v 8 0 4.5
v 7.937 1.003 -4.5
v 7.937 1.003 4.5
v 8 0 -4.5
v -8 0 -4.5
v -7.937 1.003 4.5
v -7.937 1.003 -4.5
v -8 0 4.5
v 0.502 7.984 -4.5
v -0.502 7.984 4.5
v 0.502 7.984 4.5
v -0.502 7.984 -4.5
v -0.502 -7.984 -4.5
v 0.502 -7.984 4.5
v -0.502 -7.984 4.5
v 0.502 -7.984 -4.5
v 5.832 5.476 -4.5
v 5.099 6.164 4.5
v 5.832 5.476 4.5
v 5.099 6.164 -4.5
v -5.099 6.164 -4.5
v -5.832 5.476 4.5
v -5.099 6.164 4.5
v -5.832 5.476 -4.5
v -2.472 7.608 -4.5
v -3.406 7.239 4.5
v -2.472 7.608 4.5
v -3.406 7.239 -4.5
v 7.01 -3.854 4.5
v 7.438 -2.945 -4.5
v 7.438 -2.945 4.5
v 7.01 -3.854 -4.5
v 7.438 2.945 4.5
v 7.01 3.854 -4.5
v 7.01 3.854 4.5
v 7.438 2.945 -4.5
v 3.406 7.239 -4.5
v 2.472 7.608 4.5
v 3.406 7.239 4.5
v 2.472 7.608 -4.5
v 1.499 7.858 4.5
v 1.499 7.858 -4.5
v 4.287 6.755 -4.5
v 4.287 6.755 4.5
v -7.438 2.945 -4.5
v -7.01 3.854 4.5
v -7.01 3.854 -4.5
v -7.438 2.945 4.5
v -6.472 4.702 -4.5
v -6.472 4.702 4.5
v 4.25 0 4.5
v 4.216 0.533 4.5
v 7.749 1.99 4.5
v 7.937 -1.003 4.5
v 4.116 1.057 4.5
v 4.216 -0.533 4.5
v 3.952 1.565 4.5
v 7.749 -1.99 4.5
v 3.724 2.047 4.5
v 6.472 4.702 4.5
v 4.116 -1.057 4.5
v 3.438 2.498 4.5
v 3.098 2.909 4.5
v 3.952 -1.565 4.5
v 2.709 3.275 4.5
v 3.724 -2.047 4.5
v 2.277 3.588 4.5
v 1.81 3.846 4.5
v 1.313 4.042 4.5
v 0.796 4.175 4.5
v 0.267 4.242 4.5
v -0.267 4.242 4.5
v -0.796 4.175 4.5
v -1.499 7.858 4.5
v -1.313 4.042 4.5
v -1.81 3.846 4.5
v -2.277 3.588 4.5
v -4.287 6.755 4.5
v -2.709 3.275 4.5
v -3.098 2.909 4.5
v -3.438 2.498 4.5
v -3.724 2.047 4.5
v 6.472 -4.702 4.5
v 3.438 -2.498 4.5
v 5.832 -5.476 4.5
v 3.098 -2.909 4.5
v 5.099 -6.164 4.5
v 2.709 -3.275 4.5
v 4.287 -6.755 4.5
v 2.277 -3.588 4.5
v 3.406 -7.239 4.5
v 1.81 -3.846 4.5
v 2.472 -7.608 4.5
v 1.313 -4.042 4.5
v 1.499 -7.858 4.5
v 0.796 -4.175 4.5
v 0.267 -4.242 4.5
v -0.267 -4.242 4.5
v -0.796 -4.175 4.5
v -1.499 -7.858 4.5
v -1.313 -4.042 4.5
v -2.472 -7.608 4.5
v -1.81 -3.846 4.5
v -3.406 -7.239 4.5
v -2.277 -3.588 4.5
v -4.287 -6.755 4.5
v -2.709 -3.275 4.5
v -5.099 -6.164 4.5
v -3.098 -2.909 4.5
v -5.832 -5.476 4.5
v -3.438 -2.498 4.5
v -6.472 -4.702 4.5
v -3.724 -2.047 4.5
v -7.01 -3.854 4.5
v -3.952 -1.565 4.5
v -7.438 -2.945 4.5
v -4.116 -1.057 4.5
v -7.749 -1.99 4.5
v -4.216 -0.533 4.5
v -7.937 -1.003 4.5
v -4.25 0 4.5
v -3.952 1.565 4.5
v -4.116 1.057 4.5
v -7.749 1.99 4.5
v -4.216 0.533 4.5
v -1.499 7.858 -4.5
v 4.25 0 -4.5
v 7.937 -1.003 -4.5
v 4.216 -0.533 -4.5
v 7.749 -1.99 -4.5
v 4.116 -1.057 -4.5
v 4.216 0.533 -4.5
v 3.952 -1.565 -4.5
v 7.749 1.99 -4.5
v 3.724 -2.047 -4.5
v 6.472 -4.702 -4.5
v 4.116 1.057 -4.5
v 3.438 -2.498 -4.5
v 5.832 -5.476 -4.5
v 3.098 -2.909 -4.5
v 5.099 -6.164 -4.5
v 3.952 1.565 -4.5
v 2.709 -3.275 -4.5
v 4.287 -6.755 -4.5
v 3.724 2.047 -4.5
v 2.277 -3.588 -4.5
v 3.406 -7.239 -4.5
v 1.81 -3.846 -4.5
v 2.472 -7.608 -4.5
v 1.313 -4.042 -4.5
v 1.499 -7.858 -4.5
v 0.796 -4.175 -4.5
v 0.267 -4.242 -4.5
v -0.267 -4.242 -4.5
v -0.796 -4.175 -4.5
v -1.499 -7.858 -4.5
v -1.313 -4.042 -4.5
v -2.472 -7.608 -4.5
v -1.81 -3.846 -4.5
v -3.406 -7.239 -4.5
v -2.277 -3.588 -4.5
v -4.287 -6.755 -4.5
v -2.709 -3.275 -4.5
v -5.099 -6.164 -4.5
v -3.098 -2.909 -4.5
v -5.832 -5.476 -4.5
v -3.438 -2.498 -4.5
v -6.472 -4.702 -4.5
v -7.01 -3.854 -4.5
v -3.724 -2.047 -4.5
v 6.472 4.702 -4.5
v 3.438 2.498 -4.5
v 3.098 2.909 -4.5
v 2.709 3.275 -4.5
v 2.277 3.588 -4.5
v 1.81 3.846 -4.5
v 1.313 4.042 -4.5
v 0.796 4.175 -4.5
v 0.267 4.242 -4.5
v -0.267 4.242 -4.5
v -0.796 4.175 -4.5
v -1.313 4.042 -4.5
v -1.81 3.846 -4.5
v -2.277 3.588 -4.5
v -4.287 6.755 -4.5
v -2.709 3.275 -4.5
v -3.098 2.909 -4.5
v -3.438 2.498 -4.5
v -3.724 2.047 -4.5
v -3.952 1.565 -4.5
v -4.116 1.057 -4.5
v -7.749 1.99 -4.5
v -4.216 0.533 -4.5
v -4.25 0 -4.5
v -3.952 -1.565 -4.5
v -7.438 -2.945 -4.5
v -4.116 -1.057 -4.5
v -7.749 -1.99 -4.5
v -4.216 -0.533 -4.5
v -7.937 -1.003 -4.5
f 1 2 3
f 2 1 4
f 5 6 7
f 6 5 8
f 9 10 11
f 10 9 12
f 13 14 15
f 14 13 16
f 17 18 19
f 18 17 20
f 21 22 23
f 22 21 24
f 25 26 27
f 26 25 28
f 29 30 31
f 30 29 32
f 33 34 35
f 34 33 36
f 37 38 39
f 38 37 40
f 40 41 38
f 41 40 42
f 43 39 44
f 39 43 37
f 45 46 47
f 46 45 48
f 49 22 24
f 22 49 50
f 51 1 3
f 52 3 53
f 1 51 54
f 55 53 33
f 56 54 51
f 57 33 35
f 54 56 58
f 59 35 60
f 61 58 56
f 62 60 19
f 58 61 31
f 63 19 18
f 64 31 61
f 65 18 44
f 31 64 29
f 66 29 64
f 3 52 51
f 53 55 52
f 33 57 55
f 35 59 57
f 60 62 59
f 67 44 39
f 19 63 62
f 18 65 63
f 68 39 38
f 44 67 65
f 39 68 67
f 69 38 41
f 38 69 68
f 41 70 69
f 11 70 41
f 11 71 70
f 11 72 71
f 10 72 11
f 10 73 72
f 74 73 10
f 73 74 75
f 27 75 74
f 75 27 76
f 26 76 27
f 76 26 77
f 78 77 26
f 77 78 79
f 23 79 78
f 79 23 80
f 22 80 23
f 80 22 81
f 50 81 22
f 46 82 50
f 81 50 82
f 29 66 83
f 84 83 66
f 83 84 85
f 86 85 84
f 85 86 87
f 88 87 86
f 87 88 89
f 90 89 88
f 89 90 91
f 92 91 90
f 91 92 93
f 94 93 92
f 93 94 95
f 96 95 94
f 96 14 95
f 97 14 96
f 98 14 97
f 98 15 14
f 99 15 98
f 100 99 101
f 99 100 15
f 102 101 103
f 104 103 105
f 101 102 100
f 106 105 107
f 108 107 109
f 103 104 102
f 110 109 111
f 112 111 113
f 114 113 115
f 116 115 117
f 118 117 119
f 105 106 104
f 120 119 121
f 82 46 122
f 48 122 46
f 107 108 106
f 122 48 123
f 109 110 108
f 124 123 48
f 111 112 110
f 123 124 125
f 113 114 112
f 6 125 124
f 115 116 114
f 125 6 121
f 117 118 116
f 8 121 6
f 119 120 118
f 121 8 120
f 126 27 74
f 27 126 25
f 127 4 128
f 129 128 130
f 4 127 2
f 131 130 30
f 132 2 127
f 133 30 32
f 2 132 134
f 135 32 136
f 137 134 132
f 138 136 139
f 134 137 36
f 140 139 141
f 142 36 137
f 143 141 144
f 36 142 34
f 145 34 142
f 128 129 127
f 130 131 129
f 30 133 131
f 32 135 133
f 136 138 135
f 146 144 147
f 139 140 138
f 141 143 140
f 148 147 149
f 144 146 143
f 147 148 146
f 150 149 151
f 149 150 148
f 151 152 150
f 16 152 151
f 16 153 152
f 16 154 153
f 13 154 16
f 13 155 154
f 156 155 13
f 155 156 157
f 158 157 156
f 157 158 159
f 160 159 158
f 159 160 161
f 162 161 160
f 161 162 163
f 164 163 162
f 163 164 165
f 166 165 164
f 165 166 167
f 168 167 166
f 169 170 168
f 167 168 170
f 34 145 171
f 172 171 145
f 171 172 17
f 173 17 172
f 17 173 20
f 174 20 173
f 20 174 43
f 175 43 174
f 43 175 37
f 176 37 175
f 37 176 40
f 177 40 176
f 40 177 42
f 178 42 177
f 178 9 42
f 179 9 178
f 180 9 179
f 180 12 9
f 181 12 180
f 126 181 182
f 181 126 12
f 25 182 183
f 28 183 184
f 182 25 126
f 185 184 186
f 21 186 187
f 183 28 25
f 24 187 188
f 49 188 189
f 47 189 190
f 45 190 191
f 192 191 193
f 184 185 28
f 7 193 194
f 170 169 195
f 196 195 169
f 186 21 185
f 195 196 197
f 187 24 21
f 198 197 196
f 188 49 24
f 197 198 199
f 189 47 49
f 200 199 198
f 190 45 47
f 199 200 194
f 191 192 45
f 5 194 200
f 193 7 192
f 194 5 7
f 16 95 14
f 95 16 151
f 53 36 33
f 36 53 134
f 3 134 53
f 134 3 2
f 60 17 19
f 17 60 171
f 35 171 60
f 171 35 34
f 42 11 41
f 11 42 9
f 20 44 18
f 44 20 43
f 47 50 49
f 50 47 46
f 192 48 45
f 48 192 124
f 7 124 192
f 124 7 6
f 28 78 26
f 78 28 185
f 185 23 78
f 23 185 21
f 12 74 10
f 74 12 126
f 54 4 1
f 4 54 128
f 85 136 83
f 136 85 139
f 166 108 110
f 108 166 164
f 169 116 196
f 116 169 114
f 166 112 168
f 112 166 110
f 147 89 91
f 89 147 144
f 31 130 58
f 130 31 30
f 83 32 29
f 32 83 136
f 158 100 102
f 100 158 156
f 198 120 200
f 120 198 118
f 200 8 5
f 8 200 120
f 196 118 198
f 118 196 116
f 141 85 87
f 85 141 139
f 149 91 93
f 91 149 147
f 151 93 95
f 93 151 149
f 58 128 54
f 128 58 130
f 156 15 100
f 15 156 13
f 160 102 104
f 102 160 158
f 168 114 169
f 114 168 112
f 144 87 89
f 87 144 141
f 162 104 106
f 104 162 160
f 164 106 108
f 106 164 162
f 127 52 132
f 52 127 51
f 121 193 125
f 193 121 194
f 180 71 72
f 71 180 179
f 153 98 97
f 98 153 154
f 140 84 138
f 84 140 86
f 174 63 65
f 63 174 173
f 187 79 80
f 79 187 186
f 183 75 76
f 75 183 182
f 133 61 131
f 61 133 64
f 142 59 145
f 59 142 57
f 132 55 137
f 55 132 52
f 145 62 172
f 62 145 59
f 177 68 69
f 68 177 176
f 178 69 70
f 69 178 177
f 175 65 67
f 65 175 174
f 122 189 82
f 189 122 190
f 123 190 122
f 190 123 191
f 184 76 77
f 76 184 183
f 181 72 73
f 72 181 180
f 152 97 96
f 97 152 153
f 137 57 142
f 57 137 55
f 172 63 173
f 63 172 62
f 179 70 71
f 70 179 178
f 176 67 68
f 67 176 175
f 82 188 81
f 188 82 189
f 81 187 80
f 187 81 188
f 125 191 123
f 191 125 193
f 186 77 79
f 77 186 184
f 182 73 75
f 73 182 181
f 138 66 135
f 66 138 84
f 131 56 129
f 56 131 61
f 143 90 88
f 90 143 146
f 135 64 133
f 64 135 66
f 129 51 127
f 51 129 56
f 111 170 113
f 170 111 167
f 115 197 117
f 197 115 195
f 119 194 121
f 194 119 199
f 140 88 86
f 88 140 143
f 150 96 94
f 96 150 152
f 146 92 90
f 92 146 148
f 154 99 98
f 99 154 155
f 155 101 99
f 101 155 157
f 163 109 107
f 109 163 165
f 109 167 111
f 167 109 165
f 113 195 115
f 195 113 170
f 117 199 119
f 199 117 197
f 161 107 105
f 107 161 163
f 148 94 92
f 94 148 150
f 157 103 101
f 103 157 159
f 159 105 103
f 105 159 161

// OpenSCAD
$fn = 50;


difference() {
	union() {
		translate(v = [0, 0, -4.5000000000]) {
			cylinder(h = 9, r = 8.0000000000);
		}
	}
	union() {
		translate(v = [0, 0, -100.0000000000]) {
			cylinder(h = 200, r = 4.2500000000);
		}
	}
}
